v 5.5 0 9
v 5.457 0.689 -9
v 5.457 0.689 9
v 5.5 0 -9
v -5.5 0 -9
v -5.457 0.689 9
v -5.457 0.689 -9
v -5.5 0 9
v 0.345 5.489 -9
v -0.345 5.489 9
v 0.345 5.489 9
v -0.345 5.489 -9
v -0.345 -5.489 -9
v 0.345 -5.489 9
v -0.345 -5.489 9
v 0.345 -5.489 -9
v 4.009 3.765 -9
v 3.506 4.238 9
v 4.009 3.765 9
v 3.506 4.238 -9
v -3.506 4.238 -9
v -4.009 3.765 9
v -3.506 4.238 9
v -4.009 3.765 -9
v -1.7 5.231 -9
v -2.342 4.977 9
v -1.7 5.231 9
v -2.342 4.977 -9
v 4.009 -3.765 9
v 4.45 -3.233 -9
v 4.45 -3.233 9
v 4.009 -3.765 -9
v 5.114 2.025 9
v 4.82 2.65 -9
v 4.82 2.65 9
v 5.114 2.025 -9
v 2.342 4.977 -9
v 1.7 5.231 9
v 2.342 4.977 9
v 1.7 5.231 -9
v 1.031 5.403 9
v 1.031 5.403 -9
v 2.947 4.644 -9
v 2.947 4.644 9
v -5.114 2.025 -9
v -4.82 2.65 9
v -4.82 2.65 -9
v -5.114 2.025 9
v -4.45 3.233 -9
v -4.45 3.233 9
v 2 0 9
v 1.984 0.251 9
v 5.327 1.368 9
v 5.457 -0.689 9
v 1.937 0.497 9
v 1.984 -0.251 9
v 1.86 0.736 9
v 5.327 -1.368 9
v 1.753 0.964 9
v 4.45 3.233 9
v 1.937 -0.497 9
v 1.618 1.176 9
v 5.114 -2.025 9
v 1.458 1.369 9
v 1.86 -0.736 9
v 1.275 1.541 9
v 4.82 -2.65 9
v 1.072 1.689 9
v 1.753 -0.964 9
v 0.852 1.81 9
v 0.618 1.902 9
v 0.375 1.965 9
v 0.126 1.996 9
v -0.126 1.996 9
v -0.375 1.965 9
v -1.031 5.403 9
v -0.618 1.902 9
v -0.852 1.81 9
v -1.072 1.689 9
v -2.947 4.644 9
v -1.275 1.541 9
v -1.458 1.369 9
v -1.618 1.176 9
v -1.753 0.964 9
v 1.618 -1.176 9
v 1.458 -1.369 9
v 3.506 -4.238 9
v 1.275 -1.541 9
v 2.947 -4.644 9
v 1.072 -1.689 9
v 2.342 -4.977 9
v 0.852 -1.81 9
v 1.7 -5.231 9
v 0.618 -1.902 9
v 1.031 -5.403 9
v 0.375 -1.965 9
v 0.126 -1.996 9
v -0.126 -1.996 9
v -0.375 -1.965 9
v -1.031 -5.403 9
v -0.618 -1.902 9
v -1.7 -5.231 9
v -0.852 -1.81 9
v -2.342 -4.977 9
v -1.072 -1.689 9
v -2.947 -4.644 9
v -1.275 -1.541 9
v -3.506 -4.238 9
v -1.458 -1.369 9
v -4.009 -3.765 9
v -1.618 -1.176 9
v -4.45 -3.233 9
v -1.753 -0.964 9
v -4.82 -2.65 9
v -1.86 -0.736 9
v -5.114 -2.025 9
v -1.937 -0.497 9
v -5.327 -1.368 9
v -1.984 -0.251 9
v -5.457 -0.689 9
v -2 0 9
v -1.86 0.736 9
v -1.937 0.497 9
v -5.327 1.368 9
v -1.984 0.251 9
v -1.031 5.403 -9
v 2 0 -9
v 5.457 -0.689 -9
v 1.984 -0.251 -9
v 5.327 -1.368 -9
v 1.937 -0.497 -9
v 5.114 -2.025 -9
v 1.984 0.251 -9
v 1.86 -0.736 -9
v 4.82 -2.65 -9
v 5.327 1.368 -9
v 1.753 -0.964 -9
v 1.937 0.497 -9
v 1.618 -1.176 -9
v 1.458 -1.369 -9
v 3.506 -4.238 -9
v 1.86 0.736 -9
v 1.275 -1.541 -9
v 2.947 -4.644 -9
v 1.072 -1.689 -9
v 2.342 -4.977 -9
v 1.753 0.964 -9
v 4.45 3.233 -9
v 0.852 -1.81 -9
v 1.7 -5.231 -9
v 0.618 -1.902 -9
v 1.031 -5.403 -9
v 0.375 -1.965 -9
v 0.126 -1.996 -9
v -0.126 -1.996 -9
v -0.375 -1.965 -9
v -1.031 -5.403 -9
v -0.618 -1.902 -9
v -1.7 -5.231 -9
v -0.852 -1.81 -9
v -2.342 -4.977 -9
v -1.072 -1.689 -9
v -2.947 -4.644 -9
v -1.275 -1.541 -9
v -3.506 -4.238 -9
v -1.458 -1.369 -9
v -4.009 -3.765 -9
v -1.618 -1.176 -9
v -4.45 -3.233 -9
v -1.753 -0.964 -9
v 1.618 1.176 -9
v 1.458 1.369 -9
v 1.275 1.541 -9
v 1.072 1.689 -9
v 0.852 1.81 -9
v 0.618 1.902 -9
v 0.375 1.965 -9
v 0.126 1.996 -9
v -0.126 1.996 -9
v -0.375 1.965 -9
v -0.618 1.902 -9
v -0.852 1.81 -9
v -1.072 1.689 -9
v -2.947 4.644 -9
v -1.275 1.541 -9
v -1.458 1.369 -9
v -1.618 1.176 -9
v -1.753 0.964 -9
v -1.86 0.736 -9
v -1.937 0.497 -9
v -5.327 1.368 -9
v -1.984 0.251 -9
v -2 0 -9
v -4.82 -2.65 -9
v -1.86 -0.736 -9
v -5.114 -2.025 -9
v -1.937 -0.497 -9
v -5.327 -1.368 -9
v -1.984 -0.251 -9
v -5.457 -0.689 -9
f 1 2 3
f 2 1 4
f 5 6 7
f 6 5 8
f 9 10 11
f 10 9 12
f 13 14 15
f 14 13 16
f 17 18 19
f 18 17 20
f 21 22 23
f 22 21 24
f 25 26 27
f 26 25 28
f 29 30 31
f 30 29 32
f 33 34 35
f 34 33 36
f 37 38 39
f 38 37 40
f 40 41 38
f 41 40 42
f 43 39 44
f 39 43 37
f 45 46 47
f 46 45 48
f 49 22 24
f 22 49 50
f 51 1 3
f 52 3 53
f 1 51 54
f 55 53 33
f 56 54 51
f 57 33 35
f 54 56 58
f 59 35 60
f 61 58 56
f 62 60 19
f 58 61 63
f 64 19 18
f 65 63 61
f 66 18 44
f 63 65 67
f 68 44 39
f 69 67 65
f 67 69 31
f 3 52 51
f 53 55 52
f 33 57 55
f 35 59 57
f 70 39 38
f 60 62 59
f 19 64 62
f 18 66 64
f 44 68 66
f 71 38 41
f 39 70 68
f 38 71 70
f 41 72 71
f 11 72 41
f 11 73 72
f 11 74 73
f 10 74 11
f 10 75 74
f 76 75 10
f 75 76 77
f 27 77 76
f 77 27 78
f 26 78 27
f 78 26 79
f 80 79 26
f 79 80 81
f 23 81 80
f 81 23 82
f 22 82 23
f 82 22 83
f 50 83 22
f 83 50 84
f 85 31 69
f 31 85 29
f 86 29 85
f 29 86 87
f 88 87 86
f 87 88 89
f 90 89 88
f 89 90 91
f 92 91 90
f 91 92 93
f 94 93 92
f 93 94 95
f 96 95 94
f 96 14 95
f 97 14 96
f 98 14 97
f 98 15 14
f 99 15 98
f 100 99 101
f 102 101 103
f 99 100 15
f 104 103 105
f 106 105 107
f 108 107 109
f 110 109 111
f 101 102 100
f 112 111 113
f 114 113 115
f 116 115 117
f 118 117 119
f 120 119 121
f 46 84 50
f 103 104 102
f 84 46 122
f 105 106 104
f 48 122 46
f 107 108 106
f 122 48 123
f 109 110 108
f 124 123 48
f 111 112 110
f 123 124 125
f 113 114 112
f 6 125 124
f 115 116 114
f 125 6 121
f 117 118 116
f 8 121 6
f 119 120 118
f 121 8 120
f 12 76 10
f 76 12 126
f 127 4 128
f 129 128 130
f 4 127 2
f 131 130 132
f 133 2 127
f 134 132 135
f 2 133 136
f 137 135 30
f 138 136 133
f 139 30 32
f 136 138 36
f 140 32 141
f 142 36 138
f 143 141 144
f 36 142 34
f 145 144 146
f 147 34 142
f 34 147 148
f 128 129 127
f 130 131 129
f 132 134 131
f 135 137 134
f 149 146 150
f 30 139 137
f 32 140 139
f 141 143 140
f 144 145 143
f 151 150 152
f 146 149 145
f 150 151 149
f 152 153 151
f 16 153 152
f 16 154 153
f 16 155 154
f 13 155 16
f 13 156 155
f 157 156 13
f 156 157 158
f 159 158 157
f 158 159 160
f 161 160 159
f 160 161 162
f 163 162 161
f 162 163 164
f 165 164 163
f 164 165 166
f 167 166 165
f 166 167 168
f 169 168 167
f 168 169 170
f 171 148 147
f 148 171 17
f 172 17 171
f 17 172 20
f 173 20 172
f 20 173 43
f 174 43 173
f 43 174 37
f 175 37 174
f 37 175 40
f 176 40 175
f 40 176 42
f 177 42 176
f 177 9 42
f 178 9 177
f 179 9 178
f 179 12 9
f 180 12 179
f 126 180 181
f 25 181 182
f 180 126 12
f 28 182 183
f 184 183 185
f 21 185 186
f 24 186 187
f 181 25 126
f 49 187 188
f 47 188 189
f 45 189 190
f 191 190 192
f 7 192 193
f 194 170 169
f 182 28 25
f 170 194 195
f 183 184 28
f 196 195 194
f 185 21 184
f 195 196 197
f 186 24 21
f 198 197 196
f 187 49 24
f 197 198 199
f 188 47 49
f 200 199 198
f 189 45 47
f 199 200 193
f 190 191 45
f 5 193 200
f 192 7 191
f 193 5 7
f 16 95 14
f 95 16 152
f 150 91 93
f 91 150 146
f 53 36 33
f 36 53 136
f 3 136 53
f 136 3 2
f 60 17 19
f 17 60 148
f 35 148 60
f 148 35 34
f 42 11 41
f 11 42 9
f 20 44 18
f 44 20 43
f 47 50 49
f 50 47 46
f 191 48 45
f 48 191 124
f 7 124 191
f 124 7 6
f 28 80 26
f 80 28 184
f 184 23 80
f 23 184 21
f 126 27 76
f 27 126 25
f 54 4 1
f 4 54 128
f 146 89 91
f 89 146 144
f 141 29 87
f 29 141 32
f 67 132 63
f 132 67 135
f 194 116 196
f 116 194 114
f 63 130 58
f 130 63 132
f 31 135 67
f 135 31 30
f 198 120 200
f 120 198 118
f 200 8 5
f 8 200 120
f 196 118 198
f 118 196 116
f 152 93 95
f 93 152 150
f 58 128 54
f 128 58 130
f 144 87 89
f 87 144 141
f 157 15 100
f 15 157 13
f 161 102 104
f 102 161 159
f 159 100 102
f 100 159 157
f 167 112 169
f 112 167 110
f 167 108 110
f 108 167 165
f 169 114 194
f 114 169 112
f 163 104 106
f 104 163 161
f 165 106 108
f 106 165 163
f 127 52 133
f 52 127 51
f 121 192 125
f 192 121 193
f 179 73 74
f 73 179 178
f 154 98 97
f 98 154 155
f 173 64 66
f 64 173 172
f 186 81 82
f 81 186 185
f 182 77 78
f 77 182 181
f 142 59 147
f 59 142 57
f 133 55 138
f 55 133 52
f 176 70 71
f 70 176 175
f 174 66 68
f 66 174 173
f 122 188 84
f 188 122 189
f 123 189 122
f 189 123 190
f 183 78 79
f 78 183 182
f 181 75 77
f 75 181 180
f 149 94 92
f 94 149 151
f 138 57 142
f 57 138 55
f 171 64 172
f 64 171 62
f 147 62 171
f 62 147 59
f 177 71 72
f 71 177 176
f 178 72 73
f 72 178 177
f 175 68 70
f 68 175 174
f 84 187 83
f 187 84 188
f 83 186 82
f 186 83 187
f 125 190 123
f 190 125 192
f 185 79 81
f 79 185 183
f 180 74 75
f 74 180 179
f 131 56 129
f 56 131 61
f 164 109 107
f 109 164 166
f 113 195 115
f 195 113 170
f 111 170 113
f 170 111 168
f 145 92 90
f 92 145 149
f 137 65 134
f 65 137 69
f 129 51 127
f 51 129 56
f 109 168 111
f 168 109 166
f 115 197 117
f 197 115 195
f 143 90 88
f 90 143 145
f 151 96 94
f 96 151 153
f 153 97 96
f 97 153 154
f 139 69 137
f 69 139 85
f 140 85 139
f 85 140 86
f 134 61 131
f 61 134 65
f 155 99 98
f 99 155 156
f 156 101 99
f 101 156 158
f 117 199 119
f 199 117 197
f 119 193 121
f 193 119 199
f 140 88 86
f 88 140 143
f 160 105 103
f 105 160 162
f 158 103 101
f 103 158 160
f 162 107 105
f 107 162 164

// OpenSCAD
$fn = 50;


difference() {
	union() {
		translate(v = [0, 0, -9.0000000000]) {
			cylinder(h = 18, r = 5.5000000000);
		}
	}
	union() {
		translate(v = [0, 0, -100.0000000000]) {
			cylinder(h = 200, r = 2);
		}
	}
}
